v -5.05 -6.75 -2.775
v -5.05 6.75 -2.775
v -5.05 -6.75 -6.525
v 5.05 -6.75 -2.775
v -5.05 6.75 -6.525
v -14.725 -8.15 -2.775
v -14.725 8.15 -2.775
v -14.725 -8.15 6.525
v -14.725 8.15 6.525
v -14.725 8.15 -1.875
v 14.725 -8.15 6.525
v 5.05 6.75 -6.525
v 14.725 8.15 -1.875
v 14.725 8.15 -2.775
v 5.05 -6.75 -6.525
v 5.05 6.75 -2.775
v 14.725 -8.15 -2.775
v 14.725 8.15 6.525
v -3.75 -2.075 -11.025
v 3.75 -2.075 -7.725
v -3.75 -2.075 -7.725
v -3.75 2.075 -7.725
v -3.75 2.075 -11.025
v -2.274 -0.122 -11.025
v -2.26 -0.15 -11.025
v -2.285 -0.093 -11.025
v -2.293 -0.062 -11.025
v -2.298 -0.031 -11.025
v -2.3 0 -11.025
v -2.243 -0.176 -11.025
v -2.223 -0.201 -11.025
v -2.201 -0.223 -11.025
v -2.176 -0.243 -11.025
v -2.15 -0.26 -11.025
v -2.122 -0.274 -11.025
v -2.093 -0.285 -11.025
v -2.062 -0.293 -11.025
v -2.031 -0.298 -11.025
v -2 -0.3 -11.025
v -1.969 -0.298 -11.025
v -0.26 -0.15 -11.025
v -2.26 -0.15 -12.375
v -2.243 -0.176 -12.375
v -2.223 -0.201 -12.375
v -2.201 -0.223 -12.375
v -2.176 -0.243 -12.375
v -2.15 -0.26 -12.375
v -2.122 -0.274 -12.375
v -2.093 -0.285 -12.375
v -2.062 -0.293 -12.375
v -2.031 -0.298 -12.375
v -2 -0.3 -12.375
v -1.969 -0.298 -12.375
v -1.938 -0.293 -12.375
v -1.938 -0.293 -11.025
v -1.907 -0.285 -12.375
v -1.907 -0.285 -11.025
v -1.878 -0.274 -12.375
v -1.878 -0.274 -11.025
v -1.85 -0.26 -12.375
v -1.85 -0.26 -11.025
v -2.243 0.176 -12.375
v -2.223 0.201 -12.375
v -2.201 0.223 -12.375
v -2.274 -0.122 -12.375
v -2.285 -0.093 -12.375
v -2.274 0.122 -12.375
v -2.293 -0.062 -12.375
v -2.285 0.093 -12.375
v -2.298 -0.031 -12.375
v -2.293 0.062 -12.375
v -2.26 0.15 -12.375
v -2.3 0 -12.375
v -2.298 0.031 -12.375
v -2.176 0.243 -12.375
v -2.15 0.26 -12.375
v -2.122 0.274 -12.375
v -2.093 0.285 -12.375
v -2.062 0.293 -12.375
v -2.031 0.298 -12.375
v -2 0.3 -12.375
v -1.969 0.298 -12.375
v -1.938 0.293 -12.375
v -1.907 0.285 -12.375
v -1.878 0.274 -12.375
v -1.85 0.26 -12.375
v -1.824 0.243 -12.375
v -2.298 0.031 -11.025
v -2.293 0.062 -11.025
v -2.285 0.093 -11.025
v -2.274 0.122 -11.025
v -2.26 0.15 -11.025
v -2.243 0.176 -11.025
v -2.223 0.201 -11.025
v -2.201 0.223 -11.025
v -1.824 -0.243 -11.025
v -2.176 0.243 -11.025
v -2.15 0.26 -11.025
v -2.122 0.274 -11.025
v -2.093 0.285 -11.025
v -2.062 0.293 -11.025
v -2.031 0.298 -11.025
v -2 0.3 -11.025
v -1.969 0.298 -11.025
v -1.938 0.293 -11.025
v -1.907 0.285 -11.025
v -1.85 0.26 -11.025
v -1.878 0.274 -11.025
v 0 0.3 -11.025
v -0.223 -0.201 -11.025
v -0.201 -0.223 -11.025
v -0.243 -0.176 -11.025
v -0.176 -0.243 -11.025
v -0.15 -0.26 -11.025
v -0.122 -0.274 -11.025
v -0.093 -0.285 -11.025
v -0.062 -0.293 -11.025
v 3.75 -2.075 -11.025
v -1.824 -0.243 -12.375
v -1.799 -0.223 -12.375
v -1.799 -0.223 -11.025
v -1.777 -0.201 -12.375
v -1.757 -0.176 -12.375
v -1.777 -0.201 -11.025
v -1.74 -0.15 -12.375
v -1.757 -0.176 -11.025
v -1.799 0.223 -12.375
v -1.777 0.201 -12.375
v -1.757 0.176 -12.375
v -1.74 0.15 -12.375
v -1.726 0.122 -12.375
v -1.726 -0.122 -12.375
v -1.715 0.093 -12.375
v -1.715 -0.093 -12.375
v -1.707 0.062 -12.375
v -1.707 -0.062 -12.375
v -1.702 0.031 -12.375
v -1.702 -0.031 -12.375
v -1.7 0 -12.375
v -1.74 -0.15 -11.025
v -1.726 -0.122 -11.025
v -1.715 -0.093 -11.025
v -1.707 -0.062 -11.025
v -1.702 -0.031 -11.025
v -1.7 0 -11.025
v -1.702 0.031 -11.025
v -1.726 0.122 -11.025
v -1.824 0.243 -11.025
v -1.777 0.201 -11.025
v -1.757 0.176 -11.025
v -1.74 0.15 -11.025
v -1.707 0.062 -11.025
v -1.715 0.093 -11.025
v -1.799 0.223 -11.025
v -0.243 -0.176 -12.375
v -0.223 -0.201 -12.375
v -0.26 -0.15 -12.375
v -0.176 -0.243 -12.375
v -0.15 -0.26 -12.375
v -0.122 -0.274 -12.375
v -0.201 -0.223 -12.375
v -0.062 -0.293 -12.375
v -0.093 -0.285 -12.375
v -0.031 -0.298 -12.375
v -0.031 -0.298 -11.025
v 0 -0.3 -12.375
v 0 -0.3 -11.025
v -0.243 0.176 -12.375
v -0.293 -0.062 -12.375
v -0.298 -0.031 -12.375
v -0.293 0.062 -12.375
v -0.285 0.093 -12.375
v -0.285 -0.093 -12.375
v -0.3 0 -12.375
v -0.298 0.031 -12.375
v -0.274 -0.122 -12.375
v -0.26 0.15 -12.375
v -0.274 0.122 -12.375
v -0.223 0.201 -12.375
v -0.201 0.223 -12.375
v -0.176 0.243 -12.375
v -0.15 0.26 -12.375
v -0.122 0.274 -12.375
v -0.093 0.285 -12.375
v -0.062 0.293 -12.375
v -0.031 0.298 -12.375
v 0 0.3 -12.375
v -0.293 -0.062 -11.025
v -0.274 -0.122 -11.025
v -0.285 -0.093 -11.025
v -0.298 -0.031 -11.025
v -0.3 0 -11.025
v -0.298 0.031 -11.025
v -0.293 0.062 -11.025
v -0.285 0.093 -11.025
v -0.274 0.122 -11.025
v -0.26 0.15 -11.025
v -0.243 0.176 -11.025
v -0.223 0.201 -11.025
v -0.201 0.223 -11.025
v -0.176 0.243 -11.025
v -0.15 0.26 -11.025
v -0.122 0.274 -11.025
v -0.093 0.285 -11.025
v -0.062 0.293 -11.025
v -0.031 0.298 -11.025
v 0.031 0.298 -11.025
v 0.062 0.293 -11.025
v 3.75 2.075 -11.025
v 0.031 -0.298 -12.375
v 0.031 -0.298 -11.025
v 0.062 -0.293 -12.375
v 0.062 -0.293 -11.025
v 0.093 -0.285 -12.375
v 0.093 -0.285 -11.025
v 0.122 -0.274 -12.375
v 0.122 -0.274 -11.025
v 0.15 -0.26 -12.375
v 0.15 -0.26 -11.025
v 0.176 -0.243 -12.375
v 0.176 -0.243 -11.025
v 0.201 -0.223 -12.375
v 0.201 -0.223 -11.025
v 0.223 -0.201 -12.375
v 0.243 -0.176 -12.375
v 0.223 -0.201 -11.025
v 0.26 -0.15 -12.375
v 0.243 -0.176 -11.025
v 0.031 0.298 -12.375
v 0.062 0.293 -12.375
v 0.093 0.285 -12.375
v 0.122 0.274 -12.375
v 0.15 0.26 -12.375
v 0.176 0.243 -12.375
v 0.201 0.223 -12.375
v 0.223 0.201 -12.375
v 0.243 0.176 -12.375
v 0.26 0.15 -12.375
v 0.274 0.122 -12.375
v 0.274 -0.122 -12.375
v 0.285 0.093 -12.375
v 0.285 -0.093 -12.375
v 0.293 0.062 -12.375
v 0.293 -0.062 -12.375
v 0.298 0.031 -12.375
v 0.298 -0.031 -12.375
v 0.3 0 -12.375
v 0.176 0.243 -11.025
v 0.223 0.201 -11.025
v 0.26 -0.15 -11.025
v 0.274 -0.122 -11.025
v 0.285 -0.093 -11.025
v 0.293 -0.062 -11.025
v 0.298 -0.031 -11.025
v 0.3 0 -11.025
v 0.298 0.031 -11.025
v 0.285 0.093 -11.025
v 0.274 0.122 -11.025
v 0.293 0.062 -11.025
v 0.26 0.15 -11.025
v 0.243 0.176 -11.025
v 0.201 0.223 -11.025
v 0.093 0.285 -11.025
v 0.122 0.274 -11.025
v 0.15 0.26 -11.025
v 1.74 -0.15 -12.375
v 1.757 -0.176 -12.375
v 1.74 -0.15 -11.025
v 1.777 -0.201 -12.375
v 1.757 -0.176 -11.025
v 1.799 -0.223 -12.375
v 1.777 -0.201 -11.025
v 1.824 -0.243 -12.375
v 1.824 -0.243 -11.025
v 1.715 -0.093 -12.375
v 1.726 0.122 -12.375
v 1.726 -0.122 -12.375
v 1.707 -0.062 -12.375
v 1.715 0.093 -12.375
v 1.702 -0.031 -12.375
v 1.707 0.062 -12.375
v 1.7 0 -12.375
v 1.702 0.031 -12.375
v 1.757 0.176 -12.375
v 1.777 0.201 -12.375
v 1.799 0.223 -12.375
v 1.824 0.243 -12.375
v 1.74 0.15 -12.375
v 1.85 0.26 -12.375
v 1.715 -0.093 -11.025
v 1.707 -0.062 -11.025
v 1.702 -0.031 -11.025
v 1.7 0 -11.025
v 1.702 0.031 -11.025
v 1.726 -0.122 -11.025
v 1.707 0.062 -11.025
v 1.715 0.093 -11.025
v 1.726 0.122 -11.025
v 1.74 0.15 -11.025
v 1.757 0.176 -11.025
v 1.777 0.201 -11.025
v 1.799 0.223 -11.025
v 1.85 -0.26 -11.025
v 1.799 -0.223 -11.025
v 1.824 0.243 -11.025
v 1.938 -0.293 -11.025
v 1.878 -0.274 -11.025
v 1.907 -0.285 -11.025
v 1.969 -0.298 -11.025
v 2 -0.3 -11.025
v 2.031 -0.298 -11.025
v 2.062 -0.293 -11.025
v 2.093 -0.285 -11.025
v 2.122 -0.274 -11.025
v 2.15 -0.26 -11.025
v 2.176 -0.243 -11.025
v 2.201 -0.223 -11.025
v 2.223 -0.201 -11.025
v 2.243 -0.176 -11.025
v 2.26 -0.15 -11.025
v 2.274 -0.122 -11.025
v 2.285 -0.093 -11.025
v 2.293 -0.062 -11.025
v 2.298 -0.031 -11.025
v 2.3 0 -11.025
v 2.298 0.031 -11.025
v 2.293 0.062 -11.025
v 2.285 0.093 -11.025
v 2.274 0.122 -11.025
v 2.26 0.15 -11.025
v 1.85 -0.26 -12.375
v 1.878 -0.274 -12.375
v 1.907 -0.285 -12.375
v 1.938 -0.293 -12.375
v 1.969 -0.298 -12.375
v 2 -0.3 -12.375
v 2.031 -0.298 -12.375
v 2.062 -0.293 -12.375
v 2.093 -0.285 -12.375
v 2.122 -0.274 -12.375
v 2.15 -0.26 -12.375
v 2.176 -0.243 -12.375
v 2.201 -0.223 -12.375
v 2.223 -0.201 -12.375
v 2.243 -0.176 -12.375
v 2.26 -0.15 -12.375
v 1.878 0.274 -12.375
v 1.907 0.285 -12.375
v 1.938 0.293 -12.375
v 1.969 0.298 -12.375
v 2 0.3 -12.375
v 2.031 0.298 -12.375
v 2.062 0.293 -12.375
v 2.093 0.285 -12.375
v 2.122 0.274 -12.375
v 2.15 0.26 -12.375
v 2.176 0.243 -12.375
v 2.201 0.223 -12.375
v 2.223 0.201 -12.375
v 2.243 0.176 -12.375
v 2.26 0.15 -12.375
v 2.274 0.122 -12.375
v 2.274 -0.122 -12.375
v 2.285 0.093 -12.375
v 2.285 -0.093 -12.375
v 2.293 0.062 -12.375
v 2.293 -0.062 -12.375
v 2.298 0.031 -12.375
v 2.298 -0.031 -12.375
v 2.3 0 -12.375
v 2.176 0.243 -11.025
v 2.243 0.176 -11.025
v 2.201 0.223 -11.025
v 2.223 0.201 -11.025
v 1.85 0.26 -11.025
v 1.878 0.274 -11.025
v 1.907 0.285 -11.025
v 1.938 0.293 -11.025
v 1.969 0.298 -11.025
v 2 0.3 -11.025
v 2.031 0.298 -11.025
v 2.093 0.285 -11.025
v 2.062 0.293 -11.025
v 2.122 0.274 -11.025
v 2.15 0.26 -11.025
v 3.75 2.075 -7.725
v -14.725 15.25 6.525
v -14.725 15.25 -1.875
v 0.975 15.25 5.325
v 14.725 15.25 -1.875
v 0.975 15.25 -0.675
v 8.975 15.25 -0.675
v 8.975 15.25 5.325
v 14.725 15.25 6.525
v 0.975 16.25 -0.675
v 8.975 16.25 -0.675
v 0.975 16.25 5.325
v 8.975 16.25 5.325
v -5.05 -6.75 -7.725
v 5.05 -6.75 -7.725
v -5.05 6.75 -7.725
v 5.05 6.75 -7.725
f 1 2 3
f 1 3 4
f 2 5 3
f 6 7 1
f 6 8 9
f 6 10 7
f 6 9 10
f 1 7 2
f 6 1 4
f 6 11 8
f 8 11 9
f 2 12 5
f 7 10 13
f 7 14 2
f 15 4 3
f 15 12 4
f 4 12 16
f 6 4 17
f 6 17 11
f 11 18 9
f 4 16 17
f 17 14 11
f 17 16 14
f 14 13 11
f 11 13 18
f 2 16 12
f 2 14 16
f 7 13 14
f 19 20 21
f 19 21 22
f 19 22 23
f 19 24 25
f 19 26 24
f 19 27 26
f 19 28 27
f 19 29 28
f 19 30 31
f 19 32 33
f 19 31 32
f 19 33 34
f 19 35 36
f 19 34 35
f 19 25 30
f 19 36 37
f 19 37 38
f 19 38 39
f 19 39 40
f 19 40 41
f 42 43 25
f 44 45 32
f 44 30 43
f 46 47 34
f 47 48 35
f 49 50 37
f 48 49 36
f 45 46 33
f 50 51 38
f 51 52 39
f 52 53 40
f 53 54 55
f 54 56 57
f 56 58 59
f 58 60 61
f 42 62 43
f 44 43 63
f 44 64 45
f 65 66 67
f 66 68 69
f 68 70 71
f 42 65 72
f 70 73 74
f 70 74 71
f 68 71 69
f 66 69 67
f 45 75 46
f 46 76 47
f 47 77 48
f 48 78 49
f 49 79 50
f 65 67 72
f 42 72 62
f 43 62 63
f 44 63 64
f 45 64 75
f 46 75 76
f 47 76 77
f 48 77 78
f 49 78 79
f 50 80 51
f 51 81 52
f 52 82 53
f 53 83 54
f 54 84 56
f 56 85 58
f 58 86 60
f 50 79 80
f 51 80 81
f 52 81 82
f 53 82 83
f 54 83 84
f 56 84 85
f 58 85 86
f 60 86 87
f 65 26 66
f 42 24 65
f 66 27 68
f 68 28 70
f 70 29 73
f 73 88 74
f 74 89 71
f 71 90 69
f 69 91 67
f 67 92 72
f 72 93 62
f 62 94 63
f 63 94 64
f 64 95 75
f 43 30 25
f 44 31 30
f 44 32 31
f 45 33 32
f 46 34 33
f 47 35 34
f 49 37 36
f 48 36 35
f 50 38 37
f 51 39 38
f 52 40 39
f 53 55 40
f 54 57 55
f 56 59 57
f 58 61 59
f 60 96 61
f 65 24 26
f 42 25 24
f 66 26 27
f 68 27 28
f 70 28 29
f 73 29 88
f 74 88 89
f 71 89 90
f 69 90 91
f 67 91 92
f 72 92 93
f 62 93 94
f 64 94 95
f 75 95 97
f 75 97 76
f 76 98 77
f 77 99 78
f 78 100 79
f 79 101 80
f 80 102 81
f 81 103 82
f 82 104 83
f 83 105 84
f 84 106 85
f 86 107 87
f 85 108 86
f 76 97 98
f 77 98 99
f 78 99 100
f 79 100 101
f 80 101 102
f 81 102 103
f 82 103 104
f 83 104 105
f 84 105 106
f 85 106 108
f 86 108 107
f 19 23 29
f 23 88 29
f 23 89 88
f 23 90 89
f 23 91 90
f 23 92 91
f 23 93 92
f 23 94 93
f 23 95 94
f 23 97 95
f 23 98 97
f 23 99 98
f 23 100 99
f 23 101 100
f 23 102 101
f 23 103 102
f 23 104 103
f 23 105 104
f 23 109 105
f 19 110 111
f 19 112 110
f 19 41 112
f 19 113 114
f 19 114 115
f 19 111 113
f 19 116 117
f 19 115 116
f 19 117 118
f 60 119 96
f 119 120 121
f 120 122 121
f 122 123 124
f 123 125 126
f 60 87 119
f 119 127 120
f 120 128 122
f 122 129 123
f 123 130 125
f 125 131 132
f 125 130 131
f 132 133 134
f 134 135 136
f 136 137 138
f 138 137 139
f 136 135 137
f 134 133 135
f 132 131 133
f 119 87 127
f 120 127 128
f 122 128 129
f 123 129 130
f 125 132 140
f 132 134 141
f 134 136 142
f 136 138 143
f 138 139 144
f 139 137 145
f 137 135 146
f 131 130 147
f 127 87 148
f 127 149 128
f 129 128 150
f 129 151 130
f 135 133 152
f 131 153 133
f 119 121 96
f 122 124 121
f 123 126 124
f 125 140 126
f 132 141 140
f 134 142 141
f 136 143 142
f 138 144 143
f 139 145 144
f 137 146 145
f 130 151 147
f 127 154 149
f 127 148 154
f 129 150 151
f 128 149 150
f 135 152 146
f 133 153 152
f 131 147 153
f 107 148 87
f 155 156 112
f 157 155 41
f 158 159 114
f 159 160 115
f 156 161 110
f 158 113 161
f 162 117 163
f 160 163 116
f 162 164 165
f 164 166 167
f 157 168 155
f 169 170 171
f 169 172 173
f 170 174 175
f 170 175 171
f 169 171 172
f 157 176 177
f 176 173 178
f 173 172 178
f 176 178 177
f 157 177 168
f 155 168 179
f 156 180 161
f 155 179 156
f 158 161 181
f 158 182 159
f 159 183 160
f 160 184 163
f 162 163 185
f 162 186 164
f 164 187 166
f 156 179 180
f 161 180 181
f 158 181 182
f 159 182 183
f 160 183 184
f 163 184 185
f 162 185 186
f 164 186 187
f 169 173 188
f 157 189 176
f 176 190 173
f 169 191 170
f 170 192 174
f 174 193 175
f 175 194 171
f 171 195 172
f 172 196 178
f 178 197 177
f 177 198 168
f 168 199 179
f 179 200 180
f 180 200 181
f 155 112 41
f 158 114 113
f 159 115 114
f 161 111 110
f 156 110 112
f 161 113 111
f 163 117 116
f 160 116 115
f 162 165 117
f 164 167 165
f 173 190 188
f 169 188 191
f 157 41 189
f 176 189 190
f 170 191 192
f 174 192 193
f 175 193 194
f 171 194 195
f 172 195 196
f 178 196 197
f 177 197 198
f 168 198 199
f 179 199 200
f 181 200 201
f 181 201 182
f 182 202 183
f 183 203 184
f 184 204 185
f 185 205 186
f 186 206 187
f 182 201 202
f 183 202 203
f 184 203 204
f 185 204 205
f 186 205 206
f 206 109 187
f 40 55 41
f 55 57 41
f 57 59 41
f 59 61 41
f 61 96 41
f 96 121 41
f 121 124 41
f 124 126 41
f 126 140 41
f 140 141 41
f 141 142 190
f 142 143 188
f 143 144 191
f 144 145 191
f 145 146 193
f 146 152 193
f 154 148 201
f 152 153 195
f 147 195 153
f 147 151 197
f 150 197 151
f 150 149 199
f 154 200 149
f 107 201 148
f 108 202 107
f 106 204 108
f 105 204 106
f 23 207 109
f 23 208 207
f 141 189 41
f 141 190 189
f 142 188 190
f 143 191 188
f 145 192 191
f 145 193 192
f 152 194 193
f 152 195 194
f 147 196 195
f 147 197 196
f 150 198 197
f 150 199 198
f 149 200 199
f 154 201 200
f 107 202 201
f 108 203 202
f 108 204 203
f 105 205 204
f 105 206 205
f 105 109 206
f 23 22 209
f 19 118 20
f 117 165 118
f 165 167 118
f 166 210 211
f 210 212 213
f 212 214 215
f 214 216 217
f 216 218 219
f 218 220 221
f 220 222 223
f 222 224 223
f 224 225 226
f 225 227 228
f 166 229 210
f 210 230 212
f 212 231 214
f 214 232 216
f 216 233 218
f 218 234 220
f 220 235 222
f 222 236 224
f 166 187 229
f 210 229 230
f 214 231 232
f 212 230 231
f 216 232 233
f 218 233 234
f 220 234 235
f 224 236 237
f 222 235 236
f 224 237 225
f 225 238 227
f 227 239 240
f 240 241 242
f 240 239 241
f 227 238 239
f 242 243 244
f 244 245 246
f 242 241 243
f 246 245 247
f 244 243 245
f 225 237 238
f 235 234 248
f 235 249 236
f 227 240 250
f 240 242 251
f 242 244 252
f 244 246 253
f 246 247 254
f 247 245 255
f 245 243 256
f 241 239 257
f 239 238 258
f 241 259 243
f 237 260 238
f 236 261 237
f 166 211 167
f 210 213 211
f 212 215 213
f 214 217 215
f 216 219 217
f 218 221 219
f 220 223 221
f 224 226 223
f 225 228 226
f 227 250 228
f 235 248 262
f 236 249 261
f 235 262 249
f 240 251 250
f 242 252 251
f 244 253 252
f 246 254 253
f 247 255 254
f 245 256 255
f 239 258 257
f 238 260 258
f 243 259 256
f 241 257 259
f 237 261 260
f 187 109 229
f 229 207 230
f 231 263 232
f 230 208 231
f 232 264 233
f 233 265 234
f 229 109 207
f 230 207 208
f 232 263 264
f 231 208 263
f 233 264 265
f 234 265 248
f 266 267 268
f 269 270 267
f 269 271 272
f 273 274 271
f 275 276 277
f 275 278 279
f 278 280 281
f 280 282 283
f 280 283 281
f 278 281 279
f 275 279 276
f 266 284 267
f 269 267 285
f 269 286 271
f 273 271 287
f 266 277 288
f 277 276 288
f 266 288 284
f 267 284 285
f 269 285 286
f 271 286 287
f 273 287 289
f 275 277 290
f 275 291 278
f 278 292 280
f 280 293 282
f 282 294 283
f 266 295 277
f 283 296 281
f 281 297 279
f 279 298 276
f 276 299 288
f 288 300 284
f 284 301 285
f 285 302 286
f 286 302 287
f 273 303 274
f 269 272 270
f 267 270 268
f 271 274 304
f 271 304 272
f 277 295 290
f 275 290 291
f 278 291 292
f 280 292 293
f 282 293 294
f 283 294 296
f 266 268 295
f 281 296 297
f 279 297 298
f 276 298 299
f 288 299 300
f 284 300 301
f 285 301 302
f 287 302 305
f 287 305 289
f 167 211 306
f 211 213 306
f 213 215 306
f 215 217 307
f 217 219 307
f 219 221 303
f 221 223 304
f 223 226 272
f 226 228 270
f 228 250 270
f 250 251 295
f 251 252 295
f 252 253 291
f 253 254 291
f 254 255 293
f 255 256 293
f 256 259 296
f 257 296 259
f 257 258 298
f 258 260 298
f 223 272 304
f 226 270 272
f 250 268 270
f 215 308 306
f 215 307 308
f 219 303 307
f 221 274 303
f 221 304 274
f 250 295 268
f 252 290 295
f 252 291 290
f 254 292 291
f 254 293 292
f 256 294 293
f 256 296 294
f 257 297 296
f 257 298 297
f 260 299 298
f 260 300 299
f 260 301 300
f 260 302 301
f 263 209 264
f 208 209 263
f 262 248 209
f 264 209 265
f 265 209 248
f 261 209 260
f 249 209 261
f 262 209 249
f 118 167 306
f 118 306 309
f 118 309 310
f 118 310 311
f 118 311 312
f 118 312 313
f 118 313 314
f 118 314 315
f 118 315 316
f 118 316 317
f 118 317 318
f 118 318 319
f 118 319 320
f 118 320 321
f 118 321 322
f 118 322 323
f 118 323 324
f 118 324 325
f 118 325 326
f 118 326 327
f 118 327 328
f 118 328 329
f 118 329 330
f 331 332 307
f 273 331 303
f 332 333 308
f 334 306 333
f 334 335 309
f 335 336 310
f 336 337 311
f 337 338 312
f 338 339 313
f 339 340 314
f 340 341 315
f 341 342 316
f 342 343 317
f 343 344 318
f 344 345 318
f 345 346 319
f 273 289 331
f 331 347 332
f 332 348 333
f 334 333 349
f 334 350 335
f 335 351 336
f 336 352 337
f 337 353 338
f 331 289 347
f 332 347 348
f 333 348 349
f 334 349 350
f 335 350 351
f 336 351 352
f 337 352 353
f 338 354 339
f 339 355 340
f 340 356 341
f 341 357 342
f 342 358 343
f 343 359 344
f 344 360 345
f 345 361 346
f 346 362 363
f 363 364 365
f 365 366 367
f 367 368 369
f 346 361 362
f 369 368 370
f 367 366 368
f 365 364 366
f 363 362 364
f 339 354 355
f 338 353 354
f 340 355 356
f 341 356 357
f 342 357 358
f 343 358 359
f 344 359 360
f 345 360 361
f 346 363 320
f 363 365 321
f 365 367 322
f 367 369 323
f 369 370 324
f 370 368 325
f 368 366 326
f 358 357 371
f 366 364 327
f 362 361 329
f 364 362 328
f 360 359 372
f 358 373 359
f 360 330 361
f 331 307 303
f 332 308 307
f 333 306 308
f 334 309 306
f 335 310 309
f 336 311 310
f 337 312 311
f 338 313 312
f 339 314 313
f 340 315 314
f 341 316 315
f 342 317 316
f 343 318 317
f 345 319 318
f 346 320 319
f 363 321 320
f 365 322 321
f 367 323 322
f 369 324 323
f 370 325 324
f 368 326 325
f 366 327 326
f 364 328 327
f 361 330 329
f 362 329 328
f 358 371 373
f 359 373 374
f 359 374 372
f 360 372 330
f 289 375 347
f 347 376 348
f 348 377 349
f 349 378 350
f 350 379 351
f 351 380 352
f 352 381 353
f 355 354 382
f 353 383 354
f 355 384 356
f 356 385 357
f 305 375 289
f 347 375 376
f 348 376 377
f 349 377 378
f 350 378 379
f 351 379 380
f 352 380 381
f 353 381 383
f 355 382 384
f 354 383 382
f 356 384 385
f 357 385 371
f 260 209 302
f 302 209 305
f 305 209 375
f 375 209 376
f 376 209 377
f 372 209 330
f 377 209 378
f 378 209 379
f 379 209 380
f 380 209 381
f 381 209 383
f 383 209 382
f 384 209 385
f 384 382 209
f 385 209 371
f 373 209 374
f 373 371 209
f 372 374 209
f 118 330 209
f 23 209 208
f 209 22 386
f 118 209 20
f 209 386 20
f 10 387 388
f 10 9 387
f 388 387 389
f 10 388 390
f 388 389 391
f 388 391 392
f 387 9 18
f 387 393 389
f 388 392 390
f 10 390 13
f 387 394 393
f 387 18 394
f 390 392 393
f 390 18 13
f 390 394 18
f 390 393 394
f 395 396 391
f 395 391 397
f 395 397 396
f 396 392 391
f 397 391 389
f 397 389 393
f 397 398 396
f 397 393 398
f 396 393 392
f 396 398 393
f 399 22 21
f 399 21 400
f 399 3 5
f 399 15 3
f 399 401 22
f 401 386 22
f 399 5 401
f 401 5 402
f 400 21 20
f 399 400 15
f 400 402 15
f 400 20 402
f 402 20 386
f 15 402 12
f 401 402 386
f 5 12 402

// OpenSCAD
/* =====================================================================
   SHARP GP2Y0D413K0F  距離センサ  外形モデル
   Data sheet "Outline Dimensions" (2ページ目) の寸法に基づく簡易モデル
   単位 : mm
   座標系 : 本体ケース(Carbonic ABS)のバウンディングボックス中心を原点
            +X : 右, +Y : 前面(レンズ側), +Z : 上
   ※ 図面に明記されていない奥行き・レンズ形状等は
      他の寸法・全体バランスから妥当な値を仮定している
      （コメントに "assumed" と記載）
   ===================================================================== */

$fn = 60;

// ---------------------------------------------------------------
// 1. 図面から読み取った寸法
// ---------------------------------------------------------------
case_width     = 29.45;   // 本体幅 (X)  [図示]
case_height    = 13.05;   // 本体全高 (Z, foot含む) [図示]
foot_height    = 3.75;    // 下部の細くなった部分の高さ [図示]
foot_width     = 10.1;    // 同上の幅 [図示]
upper_height   = case_height - foot_height; // 9.3  上部本体の高さ

lens_case_depth  = 7.1;   // レンズケース突出量 (Y) [図示 7.1±0.1]
lens_case_height = 8.4;   // レンズケースの高さ (Z) [図示]

// 奥行き方向は下面図の 3 区間(7.5 / 4.15 / 16.3)・13.5 から推定 (assumed)
case_depth   = 16.3;      // 上部本体の奥行き (Y)   [下面図の値を採用]
foot_depth   = 13.5;      // foot / PWB の奥行き (Y) [下面図の値]

// レンズ中心位置 ( "*" 参照寸法 )
emitter_x  = -case_width/2 + 4.5;   // *4.5
detector_x = -case_width/2 + 19.7;  // *19.7

// レンズ形状(図に明記なし、概形のみなので assumed)
emitter_d      = 6.5;   // 発光部(円形)レンズ 直径
detector_w     = 8.0;   // 受光部(矩形)レンズ 幅
detector_h     = 6.0;   // 受光部(矩形)レンズ 高さ
lens_protrude  = 1.0;   // レンズ窓の前方への出っ張り量(視認用)

// PWB
pwb_thickness = 1.2;     // [図示]
pwb_width     = foot_width;   // assumed: foot と同幅
pwb_depth     = foot_depth;   // assumed: foot と同奥行き

// コネクタ (JCTC 12001W90-3P-HF) 簡易表現
connector_h  = 3.3;    // (3.3) 参考寸法 = コネクタ本体高さ
connector_w  = 7.5;    // 下面図の値を流用 (assumed)
connector_d  = 4.15;   // 下面図の値を流用 (assumed)
pin_length   = 18.9 - (case_height + pwb_thickness + connector_h); // 端子長さ(全高18.9に合わせる)
pin_d        = 0.6;    // ピン直径 (assumed)
pin_pitch    = 2.0;    // ピン間隔   (assumed)

// ---------------------------------------------------------------
// 2. Z 方向基準位置 (本体ケース中心を原点とするための計算)
// ---------------------------------------------------------------
case_top_z    = case_height/2;                 // = 6.525
case_bottom_z = -case_height/2;                // = -6.525
upper_bottom_z= case_top_z - upper_height;      // 上部ブロック下端 = -2.775

pwb_top_z     = case_bottom_z;
pwb_bottom_z  = pwb_top_z - pwb_thickness;

conn_top_z    = pwb_bottom_z;
conn_bottom_z = conn_top_z - connector_h;

pin_top_z     = conn_bottom_z;
pin_bottom_z  = pin_top_z - pin_length;

lens_case_top_z    = case_top_z;                 // レンズケースは本体上面と面一
lens_case_bottom_z = lens_case_top_z - lens_case_height;
lens_center_z      = (lens_case_top_z + lens_case_bottom_z)/2;

case_front_y = case_depth/2;                    // 本体前面 Y座標
lens_case_front_y = case_front_y + lens_case_depth;

// ---------------------------------------------------------------
// 3. 部品モジュール
// ---------------------------------------------------------------

// ---- 本体ケース (Carbonic ABS) : 上部ブロック + 下部foot ----
module main_case() {
    color("dimgray") {
        // 上部ブロック
        translate([-case_width/2, -case_depth/2, upper_bottom_z])
            cube([case_width, case_depth, upper_height]);

        // 下部の細い foot
        translate([-foot_width/2, -foot_depth/2, case_bottom_z])
            cube([foot_width, foot_depth, foot_height]);
    }
}

// ---- レンズケース (前面に飛び出す突起) ----
module lens_case() {
    color("dimgray")
        translate([-case_width/2, case_front_y, lens_case_bottom_z])
            cube([case_width, lens_case_depth, lens_case_height]);
}

// ---- 発光部レンズ (円形窓・左側) ----
module emitter_lens() {
    color("orange")
        translate([emitter_x, lens_case_front_y, lens_center_z])
            rotate([90,0,0])
                cylinder(d = emitter_d, h = lens_protrude);
}

// ---- 受光部レンズ (矩形窓・右側) ----
module detector_lens() {
    color("orange")
        translate([detector_x - detector_w/2,
                    lens_case_front_y,
                    lens_center_z - detector_h/2])
            cube([detector_w, lens_protrude, detector_h]);
}

// ---- PWB (プリント基板) ----
module pwb() {
    color("burlywood")
        translate([-pwb_width/2, -pwb_depth/2, pwb_bottom_z])
            cube([pwb_width, pwb_depth, pwb_thickness]);
}

// ---- 3ピンコネクタ (JCTC 12001W90-3P-HF, 簡易表現) ----
module connector() {
    color("black") {
        // コネクタ本体
        translate([-connector_w/2, -connector_d/2, conn_bottom_z])
            cube([connector_w, connector_d, connector_h]);

        // 3本のピン (①②③)
        for (i = [-1, 0, 1]) {
            translate([i*pin_pitch, 0, pin_bottom_z])
                cylinder(d = pin_d, h = pin_length);
        }
    }
}

// ---------------------------------------------------------------
// 4. アセンブリ
// ---------------------------------------------------------------
module GP2Y0D413K0F() {
    main_case();
    lens_case();
    emitter_lens();
    detector_lens();
    pwb();
    connector();
}

GP2Y0D413K0F();
